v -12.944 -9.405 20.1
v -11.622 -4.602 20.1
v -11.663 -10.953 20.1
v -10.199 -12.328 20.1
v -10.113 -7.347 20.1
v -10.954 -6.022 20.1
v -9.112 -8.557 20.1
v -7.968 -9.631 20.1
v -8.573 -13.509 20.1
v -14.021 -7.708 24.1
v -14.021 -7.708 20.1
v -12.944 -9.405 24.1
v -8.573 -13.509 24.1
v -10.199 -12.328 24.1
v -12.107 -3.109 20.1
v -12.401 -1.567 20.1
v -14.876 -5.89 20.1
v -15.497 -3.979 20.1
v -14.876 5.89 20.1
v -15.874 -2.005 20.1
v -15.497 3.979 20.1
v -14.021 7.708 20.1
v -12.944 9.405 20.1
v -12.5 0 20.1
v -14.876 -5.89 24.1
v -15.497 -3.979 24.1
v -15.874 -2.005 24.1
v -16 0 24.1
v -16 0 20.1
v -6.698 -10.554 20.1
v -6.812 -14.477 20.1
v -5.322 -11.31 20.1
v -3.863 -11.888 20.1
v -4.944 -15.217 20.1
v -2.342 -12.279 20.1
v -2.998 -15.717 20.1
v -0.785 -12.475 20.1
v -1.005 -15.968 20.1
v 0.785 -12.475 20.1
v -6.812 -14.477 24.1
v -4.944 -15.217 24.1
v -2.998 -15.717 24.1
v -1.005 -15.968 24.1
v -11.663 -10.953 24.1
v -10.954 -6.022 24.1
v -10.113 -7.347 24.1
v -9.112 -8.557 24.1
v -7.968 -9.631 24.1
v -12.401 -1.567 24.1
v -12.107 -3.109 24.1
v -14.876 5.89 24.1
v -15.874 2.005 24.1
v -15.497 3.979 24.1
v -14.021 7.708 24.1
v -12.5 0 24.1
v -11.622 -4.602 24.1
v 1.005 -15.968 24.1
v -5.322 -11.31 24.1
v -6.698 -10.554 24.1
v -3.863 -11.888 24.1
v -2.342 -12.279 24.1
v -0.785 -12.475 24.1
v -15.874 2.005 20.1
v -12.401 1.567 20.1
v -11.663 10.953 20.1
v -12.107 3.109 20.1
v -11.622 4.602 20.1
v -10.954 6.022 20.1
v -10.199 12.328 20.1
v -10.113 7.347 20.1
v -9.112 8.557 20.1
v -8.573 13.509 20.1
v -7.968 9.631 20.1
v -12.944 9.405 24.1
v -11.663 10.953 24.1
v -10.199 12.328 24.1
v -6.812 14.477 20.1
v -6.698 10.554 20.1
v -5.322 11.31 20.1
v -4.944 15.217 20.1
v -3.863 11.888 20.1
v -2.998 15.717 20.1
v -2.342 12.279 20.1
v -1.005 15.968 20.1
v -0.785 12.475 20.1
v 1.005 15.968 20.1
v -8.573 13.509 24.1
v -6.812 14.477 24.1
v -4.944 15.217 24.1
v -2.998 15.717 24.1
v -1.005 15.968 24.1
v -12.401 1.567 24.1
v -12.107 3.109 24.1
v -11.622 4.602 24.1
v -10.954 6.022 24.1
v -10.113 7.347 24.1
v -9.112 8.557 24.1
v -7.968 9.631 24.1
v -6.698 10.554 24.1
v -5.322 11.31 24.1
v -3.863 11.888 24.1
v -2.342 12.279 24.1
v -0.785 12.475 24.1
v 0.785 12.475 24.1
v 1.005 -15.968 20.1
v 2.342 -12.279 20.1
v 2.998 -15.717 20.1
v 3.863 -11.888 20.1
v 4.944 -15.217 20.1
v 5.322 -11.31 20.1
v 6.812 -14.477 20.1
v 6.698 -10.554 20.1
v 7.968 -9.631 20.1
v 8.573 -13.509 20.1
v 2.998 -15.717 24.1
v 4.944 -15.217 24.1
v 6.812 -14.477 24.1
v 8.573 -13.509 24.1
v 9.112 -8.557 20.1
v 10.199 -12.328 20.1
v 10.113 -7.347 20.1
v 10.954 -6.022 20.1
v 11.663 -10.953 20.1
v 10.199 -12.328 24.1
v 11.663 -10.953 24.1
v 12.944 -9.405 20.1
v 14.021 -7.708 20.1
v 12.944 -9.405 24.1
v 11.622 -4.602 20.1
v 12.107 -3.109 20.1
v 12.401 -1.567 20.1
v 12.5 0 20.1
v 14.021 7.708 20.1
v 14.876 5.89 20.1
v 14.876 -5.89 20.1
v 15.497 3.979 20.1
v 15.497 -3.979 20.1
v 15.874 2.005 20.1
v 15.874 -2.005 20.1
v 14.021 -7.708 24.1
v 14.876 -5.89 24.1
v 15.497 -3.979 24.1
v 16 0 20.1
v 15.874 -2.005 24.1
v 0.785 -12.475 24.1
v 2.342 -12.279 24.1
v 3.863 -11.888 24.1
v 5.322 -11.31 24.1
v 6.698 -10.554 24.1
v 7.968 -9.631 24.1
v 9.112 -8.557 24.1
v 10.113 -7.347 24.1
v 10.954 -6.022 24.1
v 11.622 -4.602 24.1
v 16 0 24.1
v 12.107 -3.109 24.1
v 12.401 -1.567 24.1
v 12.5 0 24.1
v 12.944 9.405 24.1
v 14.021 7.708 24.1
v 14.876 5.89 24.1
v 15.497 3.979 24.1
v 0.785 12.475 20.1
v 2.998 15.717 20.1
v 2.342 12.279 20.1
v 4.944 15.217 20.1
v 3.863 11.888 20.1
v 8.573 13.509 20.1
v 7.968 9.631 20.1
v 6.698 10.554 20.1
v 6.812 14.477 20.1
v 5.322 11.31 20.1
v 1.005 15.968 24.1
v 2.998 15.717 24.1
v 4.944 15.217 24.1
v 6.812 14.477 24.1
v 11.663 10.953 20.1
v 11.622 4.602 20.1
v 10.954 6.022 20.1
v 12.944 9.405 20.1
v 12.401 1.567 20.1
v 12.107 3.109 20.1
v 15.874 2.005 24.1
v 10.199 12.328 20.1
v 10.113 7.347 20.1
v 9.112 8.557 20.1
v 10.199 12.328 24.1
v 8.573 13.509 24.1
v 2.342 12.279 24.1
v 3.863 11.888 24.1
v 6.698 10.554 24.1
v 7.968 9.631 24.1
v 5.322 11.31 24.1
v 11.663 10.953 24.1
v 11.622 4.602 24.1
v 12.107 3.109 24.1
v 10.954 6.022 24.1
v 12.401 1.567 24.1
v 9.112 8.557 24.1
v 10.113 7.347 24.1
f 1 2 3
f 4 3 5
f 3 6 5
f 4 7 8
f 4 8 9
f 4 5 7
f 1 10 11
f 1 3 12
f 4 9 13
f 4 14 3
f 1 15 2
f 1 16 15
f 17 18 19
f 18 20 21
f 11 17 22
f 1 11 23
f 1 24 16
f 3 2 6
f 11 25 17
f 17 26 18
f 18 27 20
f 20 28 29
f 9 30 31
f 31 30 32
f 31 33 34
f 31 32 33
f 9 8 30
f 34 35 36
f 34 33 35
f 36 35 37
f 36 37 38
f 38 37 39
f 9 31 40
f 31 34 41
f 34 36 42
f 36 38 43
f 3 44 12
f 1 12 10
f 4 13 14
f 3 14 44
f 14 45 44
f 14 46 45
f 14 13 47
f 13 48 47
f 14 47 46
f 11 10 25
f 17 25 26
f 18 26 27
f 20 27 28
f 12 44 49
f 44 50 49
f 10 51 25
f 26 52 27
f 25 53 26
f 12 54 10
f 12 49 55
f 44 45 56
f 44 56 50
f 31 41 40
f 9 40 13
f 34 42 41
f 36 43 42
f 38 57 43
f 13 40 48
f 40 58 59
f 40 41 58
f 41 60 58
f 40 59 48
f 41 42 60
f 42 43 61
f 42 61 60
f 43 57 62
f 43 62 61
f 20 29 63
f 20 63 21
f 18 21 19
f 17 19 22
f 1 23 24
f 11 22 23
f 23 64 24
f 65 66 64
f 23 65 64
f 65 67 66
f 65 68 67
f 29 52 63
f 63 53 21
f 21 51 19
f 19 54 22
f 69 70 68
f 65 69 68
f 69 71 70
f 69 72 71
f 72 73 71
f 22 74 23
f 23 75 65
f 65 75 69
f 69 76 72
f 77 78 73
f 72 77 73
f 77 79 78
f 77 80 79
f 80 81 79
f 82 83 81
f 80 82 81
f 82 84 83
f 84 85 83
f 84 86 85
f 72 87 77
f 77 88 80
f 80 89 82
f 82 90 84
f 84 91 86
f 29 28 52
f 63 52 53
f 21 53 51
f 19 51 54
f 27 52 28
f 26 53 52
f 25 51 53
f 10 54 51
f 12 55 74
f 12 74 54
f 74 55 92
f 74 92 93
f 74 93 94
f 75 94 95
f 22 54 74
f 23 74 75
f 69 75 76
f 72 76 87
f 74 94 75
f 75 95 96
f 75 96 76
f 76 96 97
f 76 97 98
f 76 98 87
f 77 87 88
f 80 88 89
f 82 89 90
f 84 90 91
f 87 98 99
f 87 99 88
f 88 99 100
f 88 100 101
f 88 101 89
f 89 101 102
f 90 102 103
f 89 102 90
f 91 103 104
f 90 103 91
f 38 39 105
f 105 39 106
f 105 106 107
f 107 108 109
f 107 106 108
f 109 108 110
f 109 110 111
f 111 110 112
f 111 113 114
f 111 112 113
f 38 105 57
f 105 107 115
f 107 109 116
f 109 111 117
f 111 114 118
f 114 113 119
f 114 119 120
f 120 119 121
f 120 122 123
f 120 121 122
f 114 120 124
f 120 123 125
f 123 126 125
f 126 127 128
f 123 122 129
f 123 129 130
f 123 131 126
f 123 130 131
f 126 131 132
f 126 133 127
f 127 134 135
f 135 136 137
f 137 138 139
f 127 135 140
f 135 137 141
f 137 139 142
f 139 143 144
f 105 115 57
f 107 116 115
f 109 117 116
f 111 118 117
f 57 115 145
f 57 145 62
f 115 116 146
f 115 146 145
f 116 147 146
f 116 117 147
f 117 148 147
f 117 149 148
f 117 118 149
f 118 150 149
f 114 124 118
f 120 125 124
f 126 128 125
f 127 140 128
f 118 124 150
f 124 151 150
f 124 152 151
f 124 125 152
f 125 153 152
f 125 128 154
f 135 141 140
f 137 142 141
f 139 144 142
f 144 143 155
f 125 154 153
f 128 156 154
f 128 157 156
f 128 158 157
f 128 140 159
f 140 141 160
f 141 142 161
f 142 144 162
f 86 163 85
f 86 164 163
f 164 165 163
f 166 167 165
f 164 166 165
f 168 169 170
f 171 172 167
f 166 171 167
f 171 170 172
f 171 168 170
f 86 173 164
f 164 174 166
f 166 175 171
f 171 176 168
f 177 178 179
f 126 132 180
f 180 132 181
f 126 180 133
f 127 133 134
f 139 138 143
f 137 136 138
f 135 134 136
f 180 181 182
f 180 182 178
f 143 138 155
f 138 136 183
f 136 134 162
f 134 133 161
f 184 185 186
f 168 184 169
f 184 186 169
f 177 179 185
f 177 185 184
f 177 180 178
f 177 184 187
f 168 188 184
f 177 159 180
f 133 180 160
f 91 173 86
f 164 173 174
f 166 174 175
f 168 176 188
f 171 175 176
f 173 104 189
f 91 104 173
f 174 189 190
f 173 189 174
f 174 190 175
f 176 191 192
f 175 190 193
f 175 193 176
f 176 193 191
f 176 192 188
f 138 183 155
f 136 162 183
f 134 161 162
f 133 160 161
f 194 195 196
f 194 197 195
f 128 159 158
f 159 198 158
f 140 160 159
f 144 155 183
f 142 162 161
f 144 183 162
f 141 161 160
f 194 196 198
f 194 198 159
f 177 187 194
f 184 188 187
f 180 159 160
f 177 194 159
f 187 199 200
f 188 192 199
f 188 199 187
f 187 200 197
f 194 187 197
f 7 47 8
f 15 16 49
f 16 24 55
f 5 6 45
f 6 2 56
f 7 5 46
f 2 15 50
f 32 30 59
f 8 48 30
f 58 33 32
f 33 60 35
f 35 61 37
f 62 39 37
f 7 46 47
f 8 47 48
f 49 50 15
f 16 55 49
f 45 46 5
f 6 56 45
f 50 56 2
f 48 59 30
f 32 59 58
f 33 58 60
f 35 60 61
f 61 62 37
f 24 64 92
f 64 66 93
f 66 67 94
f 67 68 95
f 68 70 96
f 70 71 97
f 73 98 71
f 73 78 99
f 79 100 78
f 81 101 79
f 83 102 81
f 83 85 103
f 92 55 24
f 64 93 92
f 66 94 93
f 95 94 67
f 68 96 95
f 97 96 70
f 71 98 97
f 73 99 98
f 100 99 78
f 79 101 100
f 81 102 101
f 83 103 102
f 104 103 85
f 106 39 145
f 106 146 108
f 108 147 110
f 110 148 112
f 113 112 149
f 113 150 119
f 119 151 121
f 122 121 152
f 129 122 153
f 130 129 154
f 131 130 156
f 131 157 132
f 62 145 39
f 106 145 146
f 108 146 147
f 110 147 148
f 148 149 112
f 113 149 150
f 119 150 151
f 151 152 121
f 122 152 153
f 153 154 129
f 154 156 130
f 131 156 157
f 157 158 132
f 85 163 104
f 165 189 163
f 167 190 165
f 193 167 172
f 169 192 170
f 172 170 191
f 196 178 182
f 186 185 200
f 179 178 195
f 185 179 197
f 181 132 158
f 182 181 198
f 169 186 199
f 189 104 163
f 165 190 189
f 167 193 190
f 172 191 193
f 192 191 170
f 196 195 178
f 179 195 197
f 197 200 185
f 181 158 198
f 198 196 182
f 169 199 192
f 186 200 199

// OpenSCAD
$fn = 50;

difference() {
	union() {
		translate(v = [0, 0, 20.1]) {
			cylinder(h = 4, r = 16.0);
		}
	}
	union() {
		translate(v = [0, 0, 19.1]) {
			cylinder(h = 6, r = 12.5);
		}
	}
}
